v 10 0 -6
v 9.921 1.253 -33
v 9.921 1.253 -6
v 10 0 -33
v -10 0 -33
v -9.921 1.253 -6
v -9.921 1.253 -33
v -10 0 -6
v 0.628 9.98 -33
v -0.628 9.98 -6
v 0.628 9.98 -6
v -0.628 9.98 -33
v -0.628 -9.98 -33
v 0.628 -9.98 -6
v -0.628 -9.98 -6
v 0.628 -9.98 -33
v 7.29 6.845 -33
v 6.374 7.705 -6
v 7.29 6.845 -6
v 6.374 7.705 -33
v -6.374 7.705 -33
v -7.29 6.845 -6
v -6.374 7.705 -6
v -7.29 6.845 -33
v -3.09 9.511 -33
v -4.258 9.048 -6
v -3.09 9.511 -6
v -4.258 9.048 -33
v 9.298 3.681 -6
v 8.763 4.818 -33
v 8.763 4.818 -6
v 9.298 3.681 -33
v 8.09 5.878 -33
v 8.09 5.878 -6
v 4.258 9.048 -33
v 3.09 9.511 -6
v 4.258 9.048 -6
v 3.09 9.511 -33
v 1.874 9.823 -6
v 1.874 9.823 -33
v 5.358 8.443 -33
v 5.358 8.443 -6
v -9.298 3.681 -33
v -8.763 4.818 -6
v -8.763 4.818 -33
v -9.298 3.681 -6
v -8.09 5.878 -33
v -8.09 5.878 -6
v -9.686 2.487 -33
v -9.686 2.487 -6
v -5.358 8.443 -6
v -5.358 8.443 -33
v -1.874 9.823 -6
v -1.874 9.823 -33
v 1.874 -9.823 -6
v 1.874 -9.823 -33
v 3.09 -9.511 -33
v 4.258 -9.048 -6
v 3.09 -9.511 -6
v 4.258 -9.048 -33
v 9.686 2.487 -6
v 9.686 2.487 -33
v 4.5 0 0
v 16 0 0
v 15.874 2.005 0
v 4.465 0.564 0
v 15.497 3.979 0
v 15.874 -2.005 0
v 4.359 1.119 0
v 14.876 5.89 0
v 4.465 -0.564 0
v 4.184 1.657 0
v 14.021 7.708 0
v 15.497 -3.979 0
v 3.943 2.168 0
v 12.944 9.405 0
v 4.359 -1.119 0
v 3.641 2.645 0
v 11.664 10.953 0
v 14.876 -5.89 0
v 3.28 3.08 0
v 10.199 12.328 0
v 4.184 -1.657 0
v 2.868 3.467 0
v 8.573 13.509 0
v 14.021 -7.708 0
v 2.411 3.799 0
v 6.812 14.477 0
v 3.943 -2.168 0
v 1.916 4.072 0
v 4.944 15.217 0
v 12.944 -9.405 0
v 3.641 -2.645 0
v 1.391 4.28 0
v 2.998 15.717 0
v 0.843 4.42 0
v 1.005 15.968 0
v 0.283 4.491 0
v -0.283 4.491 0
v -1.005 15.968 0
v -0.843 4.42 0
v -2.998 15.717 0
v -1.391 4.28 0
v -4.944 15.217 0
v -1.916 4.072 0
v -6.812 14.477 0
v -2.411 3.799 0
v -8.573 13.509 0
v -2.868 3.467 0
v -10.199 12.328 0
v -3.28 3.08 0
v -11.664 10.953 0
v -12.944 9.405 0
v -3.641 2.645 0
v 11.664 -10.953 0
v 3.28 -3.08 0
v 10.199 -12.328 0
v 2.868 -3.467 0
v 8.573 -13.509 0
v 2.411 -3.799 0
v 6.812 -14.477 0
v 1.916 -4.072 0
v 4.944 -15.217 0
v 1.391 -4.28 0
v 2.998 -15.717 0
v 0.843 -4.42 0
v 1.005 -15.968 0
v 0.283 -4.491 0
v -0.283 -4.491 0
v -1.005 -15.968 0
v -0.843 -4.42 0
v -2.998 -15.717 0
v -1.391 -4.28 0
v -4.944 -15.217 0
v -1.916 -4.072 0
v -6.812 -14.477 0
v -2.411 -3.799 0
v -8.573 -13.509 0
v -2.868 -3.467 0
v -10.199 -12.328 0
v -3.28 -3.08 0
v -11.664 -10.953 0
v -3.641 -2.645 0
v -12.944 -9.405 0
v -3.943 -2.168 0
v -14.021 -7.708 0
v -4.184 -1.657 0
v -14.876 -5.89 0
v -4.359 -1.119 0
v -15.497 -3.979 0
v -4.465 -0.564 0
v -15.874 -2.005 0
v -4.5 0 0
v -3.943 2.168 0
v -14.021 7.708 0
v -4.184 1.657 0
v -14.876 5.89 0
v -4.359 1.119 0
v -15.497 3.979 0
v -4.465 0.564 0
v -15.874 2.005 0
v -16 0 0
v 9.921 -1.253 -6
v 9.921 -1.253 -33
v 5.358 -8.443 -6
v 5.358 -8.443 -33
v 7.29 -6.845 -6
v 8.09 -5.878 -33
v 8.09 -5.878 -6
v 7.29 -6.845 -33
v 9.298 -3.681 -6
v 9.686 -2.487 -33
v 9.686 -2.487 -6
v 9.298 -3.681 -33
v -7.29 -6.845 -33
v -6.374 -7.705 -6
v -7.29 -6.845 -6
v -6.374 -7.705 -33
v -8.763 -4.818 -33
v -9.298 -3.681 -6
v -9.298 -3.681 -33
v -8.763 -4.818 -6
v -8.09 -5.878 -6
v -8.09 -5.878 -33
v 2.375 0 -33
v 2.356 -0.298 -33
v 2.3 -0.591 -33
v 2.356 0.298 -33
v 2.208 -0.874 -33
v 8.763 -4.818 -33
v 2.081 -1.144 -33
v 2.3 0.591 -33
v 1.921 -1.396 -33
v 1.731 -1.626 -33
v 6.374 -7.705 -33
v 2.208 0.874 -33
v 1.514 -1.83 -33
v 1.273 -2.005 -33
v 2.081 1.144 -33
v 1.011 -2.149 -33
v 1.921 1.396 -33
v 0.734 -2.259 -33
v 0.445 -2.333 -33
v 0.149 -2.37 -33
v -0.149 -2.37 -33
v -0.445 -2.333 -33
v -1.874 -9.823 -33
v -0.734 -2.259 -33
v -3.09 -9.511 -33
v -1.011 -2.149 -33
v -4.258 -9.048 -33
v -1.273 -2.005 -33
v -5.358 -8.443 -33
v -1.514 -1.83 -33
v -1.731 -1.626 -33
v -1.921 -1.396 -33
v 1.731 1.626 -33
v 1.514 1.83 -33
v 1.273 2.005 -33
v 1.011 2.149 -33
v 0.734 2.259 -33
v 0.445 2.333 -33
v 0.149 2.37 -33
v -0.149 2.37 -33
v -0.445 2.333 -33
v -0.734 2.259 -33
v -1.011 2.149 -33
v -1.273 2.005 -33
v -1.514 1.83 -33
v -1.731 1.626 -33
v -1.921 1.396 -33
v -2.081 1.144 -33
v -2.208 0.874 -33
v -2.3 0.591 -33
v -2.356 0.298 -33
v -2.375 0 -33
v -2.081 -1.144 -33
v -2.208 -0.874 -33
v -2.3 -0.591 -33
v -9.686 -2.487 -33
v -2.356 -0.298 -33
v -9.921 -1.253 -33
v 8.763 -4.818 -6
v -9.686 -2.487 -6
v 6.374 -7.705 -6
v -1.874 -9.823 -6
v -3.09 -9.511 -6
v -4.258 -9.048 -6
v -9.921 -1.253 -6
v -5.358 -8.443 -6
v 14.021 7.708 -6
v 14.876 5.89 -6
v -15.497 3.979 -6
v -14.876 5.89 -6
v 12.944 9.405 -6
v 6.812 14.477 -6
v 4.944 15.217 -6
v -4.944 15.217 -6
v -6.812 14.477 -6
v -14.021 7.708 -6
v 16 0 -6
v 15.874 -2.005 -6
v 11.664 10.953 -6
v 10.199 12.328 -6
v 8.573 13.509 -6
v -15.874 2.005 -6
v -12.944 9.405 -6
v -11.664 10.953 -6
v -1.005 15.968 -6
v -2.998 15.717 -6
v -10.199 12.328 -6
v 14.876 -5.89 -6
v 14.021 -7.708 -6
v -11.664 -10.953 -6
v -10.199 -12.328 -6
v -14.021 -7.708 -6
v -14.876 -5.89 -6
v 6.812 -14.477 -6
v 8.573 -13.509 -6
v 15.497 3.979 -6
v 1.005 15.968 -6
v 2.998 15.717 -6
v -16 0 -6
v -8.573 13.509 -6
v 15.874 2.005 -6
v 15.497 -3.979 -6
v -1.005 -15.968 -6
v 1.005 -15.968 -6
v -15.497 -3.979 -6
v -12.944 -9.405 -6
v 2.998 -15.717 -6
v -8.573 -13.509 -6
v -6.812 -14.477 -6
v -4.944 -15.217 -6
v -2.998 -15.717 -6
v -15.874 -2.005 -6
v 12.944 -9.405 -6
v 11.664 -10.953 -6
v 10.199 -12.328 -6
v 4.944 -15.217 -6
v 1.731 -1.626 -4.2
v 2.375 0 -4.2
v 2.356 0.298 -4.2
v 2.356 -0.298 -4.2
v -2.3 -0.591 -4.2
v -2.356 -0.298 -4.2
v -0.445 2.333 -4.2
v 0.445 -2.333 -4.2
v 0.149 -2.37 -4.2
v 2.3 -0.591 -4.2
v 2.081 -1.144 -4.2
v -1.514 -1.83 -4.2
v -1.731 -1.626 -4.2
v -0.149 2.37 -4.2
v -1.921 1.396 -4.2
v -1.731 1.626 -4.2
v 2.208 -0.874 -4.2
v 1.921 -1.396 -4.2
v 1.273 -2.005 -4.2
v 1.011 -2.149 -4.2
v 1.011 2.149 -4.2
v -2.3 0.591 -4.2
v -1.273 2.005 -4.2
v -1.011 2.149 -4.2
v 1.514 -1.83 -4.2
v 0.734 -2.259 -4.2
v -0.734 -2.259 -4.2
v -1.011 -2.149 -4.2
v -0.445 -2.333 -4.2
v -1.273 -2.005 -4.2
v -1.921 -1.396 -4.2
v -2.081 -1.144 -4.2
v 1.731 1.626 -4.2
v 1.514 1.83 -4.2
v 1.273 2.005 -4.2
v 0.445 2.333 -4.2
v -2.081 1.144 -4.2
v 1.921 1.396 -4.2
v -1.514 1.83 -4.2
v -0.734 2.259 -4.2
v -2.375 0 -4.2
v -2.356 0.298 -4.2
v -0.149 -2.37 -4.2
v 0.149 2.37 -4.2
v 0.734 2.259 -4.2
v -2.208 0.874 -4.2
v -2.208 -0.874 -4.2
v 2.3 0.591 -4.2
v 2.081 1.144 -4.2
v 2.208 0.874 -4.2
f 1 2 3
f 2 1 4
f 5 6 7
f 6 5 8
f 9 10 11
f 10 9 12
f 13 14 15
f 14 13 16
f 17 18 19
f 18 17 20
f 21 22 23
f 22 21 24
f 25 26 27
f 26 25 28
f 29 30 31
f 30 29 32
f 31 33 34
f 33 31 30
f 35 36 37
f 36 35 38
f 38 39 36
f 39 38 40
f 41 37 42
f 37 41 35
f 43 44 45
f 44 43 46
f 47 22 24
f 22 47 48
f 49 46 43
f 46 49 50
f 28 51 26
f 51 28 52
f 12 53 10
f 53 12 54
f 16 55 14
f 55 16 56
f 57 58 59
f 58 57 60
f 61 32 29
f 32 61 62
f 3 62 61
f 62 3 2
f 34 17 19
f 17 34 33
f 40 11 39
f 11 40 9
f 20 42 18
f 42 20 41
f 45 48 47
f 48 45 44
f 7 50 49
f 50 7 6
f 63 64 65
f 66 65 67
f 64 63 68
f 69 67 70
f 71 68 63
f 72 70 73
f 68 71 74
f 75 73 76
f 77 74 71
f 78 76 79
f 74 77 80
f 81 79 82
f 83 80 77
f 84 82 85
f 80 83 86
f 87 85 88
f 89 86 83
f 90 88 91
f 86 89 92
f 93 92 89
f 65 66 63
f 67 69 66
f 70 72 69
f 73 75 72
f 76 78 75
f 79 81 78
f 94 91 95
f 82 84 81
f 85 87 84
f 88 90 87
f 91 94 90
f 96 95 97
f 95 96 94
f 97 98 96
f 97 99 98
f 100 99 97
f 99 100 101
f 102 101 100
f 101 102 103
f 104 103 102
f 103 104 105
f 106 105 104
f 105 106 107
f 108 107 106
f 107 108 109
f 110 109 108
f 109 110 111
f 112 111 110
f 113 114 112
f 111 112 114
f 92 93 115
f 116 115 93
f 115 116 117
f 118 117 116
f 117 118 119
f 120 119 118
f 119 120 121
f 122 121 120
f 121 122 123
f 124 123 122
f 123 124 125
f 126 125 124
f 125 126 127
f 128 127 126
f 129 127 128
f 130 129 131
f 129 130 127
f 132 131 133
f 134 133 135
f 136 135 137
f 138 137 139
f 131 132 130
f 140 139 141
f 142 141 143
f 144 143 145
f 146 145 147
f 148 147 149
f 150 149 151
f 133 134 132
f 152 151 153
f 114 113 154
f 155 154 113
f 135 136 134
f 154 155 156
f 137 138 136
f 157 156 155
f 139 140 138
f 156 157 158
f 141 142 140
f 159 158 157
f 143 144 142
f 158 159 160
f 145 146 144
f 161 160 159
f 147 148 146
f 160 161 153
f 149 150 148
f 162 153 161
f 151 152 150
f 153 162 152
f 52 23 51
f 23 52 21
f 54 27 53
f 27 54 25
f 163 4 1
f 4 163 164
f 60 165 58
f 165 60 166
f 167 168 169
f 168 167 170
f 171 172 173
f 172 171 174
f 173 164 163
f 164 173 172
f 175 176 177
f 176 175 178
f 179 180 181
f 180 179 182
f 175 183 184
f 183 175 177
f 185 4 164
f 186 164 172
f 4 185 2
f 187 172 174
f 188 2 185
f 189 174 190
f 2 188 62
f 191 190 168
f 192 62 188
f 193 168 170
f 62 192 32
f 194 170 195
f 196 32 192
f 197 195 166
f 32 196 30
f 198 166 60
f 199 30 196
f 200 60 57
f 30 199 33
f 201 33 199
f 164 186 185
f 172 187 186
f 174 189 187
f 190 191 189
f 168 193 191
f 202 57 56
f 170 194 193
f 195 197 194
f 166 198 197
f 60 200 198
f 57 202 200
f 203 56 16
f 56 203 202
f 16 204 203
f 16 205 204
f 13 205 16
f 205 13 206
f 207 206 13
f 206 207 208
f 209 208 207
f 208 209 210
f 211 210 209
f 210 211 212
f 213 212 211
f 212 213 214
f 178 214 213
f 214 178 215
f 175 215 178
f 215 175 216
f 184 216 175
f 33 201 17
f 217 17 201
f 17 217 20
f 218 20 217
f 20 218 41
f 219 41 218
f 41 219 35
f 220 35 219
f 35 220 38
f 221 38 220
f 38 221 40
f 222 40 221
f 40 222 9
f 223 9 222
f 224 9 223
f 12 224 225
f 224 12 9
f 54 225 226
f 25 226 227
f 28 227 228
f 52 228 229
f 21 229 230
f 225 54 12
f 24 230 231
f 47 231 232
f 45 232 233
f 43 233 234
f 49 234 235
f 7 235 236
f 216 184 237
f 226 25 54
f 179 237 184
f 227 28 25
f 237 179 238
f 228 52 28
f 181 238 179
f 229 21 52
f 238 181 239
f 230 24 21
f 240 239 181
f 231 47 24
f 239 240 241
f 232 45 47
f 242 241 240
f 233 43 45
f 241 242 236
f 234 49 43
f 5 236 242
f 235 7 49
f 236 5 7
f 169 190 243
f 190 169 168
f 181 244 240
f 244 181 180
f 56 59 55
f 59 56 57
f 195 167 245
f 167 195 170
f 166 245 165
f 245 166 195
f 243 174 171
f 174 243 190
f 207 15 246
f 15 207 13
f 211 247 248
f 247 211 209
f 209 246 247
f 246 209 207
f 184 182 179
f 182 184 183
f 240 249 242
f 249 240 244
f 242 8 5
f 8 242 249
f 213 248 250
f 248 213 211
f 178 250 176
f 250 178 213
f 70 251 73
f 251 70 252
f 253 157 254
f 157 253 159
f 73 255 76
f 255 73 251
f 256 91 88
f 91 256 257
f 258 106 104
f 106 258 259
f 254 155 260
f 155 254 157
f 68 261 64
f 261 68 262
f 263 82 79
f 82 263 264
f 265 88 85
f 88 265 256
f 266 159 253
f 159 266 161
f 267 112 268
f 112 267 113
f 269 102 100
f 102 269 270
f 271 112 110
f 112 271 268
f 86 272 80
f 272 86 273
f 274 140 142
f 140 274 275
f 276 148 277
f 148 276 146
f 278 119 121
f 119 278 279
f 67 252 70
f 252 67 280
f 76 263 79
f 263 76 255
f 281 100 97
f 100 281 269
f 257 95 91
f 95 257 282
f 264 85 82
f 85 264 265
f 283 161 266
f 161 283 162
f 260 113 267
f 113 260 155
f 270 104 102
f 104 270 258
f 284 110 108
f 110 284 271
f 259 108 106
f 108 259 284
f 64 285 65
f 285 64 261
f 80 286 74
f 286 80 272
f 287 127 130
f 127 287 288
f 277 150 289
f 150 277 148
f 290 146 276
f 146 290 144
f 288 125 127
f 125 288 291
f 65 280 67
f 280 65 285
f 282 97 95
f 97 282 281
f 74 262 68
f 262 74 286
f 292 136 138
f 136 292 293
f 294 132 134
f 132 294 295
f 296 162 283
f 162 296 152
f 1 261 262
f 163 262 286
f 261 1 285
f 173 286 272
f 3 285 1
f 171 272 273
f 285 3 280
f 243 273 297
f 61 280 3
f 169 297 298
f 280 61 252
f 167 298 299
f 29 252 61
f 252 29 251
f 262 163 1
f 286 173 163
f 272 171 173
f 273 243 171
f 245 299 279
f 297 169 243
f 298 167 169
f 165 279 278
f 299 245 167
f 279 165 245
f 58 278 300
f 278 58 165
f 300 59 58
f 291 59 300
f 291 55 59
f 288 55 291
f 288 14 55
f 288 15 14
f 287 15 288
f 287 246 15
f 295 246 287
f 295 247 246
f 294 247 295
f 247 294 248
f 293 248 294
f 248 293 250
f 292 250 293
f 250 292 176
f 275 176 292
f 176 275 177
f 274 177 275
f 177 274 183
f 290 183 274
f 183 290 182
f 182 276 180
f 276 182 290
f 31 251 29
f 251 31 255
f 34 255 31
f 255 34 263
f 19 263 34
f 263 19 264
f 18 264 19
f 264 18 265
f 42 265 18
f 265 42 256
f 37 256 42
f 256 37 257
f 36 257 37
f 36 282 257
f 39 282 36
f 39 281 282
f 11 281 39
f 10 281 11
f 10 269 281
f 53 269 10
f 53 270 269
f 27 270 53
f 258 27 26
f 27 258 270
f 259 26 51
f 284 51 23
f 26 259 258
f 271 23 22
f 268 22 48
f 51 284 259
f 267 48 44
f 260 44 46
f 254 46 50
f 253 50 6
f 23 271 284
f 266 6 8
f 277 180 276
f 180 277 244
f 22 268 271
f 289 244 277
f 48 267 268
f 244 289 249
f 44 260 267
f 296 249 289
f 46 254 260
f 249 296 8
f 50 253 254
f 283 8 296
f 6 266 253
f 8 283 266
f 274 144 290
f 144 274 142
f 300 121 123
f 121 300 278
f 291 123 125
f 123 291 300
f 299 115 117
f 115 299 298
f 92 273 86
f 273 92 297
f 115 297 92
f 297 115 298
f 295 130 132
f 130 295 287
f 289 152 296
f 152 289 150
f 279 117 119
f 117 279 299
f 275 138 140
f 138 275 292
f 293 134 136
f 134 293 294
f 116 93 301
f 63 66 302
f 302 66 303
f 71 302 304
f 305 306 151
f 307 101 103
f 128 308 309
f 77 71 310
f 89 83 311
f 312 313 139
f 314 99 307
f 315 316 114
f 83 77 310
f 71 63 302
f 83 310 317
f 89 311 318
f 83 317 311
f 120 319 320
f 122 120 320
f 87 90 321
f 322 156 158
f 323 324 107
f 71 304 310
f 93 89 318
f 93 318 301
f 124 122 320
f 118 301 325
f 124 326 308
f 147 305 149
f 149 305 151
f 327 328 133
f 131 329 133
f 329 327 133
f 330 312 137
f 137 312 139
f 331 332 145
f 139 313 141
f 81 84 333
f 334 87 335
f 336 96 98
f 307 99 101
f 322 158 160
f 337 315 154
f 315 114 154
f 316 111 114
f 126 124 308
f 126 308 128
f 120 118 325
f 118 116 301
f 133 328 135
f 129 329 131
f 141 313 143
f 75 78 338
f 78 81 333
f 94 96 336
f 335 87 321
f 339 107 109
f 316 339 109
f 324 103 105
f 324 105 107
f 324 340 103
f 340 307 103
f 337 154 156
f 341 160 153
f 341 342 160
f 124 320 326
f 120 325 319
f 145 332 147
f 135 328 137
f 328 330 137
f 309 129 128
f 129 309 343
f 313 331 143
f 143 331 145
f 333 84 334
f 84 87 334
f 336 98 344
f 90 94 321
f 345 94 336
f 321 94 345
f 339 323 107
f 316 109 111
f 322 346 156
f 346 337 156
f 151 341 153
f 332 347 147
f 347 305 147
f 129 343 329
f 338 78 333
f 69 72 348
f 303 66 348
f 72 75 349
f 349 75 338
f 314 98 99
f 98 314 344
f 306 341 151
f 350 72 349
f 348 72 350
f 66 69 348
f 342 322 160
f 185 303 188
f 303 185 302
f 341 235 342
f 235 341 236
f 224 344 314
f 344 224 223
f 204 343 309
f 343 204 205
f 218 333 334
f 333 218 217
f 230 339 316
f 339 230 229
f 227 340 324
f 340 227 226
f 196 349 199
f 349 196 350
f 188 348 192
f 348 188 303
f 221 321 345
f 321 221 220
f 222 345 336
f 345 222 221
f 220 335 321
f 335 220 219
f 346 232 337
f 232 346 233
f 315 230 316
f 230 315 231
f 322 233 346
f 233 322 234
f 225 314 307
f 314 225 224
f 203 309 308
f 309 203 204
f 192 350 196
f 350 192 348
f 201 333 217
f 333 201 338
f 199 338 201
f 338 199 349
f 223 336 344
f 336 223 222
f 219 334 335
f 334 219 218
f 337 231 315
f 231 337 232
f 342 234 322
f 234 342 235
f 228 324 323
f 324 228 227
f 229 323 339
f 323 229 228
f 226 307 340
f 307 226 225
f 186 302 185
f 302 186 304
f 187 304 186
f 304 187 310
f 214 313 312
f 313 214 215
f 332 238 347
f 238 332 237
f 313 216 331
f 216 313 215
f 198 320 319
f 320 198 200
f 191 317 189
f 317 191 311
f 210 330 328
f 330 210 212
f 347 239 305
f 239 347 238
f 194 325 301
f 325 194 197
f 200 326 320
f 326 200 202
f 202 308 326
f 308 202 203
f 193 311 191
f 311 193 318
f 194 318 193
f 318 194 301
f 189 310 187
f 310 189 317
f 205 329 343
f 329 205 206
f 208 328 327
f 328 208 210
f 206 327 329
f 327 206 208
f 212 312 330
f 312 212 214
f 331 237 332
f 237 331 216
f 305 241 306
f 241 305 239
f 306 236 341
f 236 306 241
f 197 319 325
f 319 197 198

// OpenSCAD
$fn = 50;


difference() {
	union() {
		translate(v = [0, 0, -33.0000000000]) {
			cylinder(h = 33, r = 10.0000000000);
		}
		translate(v = [0, 0, -6.0000000000]) {
			cylinder(h = 6, r = 16.0000000000);
		}
	}
	union() {
		translate(v = [0, 0, 0]) {
			rotate(a = [0, 0, 0]) {
				difference() {
					union() {
						#translate(v = [0, 0, -33.0000000000]) {
							cylinder(h = 33, r = 2.2500000000);
						}
						#translate(v = [0, 0, -4.2000000000]) {
							cylinder(h = 4.2000000000, r = 10.0000000000, r1 = 2.3750000000, r2 = 4.5000000000);
						}
						#translate(v = [0, 0, -33.0000000000]) {
							cylinder(h = 33, r = 2.3750000000);
						}
						#translate(v = [0, 0, -33.0000000000]) {
							cylinder(h = 33, r = 2.2500000000);
						}
					}
					union();
				}
			}
		}
	}
}
